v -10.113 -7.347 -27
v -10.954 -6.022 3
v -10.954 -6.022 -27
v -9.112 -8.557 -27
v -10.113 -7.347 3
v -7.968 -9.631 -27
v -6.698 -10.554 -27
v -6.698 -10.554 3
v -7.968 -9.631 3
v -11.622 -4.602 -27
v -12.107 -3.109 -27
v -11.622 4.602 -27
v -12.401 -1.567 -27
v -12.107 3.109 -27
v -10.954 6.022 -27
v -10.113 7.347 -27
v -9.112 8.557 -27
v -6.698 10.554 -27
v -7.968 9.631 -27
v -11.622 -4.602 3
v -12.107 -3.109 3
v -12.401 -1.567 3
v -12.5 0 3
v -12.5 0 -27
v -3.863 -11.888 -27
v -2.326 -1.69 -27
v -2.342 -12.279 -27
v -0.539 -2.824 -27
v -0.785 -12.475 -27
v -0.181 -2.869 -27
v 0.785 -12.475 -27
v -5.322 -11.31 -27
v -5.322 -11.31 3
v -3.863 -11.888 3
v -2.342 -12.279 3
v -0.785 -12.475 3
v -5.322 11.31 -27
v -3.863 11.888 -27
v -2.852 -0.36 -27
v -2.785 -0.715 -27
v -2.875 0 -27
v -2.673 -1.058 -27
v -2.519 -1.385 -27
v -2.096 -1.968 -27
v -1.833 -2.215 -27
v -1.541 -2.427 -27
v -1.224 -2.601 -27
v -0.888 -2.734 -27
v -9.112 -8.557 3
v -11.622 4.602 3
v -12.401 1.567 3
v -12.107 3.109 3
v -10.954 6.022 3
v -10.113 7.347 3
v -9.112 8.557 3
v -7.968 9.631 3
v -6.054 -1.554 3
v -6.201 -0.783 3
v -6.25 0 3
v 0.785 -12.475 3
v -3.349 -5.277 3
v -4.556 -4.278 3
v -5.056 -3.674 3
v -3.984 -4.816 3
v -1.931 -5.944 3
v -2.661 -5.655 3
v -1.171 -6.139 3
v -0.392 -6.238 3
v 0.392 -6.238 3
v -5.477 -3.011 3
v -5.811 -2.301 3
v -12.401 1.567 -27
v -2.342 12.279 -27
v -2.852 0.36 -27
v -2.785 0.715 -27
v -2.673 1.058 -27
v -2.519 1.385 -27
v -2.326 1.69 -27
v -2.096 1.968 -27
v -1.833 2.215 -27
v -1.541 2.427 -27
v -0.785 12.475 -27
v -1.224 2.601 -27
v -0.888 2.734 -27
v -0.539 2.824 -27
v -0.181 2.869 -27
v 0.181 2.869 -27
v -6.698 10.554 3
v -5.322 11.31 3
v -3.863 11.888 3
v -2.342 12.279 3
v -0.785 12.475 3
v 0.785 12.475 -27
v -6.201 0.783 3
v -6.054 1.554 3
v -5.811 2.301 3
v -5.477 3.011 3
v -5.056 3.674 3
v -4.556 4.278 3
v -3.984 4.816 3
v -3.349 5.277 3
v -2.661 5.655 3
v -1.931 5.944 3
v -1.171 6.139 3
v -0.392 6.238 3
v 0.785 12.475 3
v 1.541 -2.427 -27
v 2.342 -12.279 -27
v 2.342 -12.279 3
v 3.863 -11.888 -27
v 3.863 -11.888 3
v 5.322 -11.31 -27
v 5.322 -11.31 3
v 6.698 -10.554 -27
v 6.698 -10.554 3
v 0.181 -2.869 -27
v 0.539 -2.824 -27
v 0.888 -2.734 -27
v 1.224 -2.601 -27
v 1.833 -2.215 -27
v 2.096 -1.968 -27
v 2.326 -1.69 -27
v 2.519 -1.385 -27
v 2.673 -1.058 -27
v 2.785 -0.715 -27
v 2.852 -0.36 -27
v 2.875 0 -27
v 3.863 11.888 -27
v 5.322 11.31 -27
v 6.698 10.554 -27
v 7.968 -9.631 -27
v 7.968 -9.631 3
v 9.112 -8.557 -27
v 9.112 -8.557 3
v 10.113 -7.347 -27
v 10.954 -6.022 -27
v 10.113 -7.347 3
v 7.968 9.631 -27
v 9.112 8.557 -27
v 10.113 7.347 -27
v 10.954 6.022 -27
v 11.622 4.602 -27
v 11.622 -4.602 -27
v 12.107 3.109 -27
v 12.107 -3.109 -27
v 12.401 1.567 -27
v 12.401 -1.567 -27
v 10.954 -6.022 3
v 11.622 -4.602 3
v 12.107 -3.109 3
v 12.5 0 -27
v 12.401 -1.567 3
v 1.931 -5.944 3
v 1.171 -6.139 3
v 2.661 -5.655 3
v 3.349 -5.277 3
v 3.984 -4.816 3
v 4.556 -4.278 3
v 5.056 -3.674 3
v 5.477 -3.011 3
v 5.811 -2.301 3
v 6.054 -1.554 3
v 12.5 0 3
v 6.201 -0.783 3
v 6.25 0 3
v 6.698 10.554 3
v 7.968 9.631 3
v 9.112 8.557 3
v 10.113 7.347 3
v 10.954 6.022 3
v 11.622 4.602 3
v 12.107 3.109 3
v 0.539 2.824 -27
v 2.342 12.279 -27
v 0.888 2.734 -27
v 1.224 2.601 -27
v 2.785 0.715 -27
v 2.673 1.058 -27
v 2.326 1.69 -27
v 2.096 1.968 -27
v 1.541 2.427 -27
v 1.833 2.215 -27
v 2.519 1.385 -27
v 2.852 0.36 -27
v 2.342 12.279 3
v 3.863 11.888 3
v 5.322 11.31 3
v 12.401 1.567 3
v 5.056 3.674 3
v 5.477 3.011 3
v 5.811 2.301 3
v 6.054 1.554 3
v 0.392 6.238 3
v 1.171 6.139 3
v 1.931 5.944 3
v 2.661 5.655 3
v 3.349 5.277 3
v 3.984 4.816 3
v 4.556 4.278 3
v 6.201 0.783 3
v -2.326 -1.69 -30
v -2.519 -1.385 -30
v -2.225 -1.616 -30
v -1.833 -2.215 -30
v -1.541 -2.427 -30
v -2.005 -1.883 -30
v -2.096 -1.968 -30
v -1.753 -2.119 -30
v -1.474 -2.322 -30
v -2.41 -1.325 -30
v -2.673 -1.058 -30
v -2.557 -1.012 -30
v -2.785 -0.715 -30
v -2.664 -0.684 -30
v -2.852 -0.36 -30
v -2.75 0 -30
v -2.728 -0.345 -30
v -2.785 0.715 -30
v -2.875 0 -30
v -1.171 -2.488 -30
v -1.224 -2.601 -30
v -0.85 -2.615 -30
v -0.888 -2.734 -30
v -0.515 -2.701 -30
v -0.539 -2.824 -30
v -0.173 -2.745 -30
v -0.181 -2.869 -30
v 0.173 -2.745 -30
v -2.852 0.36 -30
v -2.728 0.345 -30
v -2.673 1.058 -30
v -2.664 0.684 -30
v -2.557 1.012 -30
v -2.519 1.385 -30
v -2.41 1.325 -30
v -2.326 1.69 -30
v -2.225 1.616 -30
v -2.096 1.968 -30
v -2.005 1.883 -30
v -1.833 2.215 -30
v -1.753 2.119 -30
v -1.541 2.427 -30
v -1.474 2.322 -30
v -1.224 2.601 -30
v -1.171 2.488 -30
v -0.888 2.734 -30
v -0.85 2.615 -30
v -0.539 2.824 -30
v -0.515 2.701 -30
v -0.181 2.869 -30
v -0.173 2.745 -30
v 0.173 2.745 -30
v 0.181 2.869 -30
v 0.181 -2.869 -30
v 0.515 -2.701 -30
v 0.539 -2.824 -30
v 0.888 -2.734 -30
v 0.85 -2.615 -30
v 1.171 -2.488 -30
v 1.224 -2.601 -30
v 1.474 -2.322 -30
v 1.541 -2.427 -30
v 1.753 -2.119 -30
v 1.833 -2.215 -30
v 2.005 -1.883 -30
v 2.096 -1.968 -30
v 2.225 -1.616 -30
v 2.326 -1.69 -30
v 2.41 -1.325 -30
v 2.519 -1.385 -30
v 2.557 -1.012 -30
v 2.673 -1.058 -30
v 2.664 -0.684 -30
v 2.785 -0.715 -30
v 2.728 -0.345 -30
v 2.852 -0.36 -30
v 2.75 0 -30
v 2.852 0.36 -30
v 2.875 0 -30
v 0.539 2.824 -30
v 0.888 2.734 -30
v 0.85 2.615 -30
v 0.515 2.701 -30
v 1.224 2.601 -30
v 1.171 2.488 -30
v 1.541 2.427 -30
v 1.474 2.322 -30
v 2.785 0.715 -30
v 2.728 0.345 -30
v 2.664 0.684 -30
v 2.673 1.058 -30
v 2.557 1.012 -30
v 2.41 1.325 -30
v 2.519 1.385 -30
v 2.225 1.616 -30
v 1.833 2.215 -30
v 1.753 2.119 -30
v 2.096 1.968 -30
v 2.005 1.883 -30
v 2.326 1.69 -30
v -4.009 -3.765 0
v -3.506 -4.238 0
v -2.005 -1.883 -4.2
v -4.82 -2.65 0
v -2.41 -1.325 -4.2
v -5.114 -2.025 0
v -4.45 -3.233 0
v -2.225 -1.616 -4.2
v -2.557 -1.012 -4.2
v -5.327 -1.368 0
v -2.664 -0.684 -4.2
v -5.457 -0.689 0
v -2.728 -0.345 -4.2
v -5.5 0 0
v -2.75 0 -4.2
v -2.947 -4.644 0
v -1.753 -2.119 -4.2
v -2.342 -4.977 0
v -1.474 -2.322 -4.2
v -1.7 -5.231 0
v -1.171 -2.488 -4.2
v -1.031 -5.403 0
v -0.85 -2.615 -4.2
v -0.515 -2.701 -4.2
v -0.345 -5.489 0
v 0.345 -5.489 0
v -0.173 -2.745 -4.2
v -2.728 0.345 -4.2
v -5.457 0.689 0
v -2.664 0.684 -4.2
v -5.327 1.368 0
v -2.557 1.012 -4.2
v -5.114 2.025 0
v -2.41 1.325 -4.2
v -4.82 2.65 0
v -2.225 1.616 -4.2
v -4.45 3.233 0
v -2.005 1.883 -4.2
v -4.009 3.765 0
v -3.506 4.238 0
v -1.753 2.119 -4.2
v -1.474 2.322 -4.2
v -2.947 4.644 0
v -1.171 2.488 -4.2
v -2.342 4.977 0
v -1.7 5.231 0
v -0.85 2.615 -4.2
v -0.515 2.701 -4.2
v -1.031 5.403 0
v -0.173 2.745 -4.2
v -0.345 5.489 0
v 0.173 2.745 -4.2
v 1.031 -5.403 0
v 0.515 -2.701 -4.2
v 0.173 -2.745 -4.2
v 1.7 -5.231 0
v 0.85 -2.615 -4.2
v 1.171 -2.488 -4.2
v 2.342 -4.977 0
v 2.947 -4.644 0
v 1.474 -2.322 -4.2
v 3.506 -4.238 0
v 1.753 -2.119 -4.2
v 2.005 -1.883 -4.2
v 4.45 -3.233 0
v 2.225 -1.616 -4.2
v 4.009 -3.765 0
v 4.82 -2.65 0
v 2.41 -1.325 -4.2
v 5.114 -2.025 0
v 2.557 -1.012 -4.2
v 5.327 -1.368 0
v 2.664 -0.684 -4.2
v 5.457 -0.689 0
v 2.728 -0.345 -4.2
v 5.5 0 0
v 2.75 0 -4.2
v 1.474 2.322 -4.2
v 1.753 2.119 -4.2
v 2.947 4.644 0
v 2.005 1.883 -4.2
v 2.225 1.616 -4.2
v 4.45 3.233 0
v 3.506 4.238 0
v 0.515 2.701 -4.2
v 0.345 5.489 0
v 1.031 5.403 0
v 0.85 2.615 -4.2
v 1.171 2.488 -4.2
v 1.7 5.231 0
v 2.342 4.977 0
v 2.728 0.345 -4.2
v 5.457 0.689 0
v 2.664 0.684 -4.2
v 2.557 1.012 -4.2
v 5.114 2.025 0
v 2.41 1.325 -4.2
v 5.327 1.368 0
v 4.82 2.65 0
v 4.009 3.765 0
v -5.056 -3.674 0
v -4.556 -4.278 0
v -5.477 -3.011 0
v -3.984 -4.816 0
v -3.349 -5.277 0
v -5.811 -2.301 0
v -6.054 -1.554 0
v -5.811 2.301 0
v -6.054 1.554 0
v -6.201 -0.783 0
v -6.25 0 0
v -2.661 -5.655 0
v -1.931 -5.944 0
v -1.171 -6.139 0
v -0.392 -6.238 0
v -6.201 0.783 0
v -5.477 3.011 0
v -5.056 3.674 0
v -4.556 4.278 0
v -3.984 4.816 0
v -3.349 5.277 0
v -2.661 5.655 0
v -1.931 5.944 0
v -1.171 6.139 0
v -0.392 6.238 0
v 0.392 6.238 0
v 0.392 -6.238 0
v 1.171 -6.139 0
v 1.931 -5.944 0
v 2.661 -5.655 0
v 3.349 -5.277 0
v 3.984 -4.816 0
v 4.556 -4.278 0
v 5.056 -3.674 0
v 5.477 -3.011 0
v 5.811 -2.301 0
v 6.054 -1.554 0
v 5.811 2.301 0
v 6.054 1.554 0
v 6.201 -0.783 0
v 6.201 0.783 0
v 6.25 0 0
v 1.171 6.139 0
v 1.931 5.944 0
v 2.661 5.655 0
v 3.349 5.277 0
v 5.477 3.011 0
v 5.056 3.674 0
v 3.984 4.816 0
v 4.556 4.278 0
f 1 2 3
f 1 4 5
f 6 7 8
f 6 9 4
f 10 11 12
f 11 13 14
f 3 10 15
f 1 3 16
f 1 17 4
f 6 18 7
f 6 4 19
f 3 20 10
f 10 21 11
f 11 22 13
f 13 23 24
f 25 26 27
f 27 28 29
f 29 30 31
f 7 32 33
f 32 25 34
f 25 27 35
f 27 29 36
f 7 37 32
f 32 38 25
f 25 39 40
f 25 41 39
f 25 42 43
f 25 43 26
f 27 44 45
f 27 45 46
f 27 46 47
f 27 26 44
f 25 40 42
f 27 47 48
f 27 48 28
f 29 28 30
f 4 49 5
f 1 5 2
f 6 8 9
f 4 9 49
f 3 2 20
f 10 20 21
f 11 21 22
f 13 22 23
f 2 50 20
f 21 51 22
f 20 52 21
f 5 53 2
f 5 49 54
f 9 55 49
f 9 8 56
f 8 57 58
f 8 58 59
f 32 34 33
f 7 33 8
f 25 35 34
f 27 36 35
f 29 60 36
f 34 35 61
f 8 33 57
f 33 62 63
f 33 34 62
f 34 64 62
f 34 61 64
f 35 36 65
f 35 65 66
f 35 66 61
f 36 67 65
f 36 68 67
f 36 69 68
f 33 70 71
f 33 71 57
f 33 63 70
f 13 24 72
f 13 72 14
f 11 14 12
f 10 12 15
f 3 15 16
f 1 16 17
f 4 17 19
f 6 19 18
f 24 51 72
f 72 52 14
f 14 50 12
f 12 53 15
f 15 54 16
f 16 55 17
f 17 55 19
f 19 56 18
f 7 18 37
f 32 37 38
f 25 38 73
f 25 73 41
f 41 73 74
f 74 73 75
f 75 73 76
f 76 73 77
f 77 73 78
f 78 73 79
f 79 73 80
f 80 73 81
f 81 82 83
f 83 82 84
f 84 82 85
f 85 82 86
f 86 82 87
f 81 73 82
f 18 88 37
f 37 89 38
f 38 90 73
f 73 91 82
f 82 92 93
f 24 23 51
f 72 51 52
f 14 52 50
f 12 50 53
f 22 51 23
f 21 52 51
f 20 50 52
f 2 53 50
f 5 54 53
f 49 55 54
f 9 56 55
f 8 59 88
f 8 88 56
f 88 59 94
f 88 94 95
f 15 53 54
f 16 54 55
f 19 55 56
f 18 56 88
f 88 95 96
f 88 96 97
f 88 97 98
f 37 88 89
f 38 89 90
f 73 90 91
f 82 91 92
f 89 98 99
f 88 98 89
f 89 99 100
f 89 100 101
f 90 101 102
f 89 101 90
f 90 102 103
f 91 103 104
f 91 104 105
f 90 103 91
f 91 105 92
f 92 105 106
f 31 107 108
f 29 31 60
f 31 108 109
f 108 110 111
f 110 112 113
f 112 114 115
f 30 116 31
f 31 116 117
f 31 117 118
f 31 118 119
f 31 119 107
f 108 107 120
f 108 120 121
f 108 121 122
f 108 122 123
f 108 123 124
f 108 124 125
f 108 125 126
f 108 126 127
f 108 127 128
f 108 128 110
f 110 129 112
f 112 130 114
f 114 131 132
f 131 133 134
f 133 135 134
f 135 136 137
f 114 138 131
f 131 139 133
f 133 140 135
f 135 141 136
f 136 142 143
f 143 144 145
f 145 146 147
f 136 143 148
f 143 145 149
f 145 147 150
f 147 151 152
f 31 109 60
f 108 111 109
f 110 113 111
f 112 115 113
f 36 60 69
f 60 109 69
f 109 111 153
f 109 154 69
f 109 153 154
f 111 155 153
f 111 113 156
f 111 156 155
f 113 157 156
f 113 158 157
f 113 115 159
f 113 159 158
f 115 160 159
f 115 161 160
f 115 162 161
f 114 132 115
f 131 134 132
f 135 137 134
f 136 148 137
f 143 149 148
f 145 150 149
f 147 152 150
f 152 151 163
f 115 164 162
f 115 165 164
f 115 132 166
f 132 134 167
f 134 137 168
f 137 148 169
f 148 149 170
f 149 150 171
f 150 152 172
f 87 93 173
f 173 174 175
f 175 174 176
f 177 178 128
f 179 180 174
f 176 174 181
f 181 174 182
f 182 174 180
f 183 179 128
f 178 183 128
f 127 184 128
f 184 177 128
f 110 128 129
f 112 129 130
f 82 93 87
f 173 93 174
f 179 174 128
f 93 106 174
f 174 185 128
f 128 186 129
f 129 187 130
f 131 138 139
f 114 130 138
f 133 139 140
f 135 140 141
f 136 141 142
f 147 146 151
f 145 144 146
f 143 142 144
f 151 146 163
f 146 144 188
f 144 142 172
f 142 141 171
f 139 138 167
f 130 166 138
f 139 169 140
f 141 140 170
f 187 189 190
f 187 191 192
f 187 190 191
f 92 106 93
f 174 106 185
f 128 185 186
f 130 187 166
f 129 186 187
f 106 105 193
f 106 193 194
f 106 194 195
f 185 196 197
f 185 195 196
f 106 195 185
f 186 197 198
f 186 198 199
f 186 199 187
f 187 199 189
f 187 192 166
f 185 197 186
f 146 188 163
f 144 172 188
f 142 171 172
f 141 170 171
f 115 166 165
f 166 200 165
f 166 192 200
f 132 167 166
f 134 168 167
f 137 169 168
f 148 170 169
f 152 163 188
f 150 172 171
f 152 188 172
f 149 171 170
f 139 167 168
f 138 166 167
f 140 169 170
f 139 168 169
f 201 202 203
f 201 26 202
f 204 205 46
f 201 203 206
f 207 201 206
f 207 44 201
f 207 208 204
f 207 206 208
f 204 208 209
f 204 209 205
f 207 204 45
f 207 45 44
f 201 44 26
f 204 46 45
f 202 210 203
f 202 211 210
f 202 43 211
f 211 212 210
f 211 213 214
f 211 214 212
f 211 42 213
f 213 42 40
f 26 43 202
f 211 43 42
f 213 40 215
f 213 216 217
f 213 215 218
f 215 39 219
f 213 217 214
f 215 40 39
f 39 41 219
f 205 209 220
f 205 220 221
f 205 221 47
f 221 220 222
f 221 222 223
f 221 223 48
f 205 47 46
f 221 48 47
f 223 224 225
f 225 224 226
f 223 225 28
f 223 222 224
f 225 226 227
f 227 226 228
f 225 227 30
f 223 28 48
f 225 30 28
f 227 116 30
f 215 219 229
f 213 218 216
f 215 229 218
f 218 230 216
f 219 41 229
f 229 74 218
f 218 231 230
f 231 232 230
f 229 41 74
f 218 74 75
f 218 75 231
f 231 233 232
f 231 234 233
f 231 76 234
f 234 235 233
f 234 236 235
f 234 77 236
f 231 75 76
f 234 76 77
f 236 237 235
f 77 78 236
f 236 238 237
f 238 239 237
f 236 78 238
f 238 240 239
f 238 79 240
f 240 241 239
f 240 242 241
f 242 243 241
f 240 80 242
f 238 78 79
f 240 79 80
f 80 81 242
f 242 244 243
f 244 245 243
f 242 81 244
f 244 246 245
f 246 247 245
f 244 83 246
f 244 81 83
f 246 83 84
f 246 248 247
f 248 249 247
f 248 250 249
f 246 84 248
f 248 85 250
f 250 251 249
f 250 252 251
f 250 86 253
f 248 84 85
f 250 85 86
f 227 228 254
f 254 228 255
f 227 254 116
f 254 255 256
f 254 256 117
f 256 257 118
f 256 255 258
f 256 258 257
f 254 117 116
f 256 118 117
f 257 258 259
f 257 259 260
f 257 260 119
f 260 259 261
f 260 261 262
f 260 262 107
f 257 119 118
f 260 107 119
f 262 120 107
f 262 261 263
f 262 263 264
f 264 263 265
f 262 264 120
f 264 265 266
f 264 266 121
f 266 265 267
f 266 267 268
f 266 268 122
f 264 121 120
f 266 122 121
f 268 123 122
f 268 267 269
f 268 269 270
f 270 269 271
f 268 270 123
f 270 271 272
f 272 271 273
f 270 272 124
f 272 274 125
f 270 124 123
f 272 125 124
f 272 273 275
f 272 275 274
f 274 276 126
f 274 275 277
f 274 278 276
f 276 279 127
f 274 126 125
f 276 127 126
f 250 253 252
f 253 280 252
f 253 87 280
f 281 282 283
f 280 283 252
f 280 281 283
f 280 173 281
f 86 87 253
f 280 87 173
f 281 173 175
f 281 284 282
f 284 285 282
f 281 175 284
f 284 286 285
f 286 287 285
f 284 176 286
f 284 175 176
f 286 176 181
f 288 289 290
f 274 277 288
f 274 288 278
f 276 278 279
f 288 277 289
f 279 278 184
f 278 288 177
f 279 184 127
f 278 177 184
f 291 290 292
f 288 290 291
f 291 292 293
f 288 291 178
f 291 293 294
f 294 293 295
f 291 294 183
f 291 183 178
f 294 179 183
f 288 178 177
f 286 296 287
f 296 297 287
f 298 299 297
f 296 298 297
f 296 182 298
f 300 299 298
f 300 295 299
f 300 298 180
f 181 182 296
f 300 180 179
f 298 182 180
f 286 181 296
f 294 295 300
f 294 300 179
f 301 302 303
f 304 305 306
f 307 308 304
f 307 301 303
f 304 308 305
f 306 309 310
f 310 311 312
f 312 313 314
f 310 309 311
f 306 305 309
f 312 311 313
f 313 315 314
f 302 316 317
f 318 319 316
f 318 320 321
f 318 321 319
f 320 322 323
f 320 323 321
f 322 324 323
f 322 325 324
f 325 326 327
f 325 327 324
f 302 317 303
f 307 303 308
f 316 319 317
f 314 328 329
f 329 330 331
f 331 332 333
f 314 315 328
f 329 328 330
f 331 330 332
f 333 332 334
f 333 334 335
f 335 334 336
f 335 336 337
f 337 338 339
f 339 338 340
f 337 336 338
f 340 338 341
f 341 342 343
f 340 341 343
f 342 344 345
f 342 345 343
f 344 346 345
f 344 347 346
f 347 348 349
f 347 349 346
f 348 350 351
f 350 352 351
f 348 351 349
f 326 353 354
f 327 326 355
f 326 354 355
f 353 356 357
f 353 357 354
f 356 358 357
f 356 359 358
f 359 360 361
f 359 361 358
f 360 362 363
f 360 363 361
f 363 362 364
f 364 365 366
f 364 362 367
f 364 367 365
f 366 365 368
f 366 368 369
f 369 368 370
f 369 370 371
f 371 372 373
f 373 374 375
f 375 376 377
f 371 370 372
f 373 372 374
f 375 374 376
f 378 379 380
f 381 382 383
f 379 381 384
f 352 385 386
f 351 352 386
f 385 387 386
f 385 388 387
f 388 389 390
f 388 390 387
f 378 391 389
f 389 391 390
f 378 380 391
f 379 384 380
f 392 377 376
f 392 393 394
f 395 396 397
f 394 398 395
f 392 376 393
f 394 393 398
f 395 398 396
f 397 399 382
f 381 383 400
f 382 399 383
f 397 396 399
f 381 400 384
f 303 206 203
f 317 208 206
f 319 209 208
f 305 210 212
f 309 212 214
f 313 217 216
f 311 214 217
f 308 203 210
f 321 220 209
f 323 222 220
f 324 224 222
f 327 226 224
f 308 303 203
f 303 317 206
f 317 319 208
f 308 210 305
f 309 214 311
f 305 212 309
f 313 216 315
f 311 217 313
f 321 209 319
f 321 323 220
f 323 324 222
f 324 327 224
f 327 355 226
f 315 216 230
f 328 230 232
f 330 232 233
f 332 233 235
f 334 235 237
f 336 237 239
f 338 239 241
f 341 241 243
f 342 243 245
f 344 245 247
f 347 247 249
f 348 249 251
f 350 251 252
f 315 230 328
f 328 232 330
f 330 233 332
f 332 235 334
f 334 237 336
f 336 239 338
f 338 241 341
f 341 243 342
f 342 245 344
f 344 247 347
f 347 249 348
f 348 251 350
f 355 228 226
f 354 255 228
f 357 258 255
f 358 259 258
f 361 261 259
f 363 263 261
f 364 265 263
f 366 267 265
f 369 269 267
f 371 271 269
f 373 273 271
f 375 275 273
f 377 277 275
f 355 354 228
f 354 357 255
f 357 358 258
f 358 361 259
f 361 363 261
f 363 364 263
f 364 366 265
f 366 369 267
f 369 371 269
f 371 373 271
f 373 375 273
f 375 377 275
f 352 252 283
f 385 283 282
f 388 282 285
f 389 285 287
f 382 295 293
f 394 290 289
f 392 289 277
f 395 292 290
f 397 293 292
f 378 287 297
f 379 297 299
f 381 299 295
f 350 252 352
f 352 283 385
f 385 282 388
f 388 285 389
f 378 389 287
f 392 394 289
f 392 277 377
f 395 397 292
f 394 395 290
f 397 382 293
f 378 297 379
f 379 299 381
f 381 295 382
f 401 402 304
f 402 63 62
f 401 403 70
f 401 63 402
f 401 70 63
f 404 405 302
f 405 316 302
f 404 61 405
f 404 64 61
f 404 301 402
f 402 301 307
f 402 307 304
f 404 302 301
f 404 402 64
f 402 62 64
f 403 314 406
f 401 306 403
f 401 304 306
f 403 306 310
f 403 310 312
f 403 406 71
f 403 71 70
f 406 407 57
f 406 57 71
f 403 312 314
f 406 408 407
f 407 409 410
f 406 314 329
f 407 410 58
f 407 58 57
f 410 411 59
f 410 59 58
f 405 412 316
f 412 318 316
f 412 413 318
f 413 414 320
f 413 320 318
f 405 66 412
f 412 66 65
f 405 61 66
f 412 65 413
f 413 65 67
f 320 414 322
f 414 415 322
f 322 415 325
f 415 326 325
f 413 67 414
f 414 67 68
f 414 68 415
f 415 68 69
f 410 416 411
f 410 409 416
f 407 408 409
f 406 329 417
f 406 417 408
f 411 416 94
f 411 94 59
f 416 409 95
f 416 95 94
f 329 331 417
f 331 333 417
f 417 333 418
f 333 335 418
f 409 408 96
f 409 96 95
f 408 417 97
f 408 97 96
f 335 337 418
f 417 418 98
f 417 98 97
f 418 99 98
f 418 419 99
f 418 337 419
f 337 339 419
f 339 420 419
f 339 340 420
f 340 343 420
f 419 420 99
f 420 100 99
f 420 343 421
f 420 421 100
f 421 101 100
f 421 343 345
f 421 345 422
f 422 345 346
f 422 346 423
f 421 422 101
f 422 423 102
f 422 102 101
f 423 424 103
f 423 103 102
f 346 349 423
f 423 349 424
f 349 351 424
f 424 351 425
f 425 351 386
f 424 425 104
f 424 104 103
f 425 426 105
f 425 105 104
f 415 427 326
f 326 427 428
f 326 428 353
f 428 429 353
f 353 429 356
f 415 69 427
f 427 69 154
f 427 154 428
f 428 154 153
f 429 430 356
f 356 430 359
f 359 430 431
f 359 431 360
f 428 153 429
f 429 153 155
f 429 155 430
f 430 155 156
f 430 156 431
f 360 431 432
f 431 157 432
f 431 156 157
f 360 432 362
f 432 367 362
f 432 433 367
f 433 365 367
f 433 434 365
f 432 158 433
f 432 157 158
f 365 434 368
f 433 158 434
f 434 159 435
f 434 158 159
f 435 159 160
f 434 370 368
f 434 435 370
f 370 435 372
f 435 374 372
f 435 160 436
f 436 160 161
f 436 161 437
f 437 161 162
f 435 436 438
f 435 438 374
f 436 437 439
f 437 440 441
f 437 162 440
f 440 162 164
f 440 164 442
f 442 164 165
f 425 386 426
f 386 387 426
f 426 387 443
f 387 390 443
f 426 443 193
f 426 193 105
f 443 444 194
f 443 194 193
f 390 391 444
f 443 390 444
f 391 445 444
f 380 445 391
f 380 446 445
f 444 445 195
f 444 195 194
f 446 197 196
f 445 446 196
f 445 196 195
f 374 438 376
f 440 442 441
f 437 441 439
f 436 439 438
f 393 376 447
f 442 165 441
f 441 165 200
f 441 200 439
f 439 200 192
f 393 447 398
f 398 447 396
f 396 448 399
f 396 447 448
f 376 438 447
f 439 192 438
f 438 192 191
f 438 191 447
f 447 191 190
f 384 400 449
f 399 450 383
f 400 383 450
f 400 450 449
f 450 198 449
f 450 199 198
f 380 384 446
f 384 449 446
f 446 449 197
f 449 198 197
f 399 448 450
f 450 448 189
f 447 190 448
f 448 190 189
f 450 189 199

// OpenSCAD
$fn = 50;


difference() {
	union() {
		translate(v = [0, 0, -27.0000000000]) {
			cylinder(h = 30, r = 12.5000000000);
		}
		#translate(v = [0, 0, -30.0000000000]) {
			cylinder(h = 30, r = 2.8750000000);
		}
	}
	union() {
		translate(v = [0, 0, 0]) {
			rotate(a = [0, 0, 0]) {
				difference() {
					union() {
						translate(v = [0, 0, -30.0000000000]) {
							cylinder(h = 30, r = 2.2500000000);
						}
						translate(v = [0, 0, -4.2000000000]) {
							cylinder(h = 4.2000000000, r1 = 2.7500000000, r2 = 5.5000000000);
						}
						translate(v = [0, 0, -30.0000000000]) {
							cylinder(h = 30, r = 2.7500000000);
						}
						translate(v = [0, 0, -30.0000000000]) {
							cylinder(h = 30, r = 2.2500000000);
						}
					}
					union();
				}
			}
		}
		#cylinder(h = 3, r = 6.2500000000);
	}
}
